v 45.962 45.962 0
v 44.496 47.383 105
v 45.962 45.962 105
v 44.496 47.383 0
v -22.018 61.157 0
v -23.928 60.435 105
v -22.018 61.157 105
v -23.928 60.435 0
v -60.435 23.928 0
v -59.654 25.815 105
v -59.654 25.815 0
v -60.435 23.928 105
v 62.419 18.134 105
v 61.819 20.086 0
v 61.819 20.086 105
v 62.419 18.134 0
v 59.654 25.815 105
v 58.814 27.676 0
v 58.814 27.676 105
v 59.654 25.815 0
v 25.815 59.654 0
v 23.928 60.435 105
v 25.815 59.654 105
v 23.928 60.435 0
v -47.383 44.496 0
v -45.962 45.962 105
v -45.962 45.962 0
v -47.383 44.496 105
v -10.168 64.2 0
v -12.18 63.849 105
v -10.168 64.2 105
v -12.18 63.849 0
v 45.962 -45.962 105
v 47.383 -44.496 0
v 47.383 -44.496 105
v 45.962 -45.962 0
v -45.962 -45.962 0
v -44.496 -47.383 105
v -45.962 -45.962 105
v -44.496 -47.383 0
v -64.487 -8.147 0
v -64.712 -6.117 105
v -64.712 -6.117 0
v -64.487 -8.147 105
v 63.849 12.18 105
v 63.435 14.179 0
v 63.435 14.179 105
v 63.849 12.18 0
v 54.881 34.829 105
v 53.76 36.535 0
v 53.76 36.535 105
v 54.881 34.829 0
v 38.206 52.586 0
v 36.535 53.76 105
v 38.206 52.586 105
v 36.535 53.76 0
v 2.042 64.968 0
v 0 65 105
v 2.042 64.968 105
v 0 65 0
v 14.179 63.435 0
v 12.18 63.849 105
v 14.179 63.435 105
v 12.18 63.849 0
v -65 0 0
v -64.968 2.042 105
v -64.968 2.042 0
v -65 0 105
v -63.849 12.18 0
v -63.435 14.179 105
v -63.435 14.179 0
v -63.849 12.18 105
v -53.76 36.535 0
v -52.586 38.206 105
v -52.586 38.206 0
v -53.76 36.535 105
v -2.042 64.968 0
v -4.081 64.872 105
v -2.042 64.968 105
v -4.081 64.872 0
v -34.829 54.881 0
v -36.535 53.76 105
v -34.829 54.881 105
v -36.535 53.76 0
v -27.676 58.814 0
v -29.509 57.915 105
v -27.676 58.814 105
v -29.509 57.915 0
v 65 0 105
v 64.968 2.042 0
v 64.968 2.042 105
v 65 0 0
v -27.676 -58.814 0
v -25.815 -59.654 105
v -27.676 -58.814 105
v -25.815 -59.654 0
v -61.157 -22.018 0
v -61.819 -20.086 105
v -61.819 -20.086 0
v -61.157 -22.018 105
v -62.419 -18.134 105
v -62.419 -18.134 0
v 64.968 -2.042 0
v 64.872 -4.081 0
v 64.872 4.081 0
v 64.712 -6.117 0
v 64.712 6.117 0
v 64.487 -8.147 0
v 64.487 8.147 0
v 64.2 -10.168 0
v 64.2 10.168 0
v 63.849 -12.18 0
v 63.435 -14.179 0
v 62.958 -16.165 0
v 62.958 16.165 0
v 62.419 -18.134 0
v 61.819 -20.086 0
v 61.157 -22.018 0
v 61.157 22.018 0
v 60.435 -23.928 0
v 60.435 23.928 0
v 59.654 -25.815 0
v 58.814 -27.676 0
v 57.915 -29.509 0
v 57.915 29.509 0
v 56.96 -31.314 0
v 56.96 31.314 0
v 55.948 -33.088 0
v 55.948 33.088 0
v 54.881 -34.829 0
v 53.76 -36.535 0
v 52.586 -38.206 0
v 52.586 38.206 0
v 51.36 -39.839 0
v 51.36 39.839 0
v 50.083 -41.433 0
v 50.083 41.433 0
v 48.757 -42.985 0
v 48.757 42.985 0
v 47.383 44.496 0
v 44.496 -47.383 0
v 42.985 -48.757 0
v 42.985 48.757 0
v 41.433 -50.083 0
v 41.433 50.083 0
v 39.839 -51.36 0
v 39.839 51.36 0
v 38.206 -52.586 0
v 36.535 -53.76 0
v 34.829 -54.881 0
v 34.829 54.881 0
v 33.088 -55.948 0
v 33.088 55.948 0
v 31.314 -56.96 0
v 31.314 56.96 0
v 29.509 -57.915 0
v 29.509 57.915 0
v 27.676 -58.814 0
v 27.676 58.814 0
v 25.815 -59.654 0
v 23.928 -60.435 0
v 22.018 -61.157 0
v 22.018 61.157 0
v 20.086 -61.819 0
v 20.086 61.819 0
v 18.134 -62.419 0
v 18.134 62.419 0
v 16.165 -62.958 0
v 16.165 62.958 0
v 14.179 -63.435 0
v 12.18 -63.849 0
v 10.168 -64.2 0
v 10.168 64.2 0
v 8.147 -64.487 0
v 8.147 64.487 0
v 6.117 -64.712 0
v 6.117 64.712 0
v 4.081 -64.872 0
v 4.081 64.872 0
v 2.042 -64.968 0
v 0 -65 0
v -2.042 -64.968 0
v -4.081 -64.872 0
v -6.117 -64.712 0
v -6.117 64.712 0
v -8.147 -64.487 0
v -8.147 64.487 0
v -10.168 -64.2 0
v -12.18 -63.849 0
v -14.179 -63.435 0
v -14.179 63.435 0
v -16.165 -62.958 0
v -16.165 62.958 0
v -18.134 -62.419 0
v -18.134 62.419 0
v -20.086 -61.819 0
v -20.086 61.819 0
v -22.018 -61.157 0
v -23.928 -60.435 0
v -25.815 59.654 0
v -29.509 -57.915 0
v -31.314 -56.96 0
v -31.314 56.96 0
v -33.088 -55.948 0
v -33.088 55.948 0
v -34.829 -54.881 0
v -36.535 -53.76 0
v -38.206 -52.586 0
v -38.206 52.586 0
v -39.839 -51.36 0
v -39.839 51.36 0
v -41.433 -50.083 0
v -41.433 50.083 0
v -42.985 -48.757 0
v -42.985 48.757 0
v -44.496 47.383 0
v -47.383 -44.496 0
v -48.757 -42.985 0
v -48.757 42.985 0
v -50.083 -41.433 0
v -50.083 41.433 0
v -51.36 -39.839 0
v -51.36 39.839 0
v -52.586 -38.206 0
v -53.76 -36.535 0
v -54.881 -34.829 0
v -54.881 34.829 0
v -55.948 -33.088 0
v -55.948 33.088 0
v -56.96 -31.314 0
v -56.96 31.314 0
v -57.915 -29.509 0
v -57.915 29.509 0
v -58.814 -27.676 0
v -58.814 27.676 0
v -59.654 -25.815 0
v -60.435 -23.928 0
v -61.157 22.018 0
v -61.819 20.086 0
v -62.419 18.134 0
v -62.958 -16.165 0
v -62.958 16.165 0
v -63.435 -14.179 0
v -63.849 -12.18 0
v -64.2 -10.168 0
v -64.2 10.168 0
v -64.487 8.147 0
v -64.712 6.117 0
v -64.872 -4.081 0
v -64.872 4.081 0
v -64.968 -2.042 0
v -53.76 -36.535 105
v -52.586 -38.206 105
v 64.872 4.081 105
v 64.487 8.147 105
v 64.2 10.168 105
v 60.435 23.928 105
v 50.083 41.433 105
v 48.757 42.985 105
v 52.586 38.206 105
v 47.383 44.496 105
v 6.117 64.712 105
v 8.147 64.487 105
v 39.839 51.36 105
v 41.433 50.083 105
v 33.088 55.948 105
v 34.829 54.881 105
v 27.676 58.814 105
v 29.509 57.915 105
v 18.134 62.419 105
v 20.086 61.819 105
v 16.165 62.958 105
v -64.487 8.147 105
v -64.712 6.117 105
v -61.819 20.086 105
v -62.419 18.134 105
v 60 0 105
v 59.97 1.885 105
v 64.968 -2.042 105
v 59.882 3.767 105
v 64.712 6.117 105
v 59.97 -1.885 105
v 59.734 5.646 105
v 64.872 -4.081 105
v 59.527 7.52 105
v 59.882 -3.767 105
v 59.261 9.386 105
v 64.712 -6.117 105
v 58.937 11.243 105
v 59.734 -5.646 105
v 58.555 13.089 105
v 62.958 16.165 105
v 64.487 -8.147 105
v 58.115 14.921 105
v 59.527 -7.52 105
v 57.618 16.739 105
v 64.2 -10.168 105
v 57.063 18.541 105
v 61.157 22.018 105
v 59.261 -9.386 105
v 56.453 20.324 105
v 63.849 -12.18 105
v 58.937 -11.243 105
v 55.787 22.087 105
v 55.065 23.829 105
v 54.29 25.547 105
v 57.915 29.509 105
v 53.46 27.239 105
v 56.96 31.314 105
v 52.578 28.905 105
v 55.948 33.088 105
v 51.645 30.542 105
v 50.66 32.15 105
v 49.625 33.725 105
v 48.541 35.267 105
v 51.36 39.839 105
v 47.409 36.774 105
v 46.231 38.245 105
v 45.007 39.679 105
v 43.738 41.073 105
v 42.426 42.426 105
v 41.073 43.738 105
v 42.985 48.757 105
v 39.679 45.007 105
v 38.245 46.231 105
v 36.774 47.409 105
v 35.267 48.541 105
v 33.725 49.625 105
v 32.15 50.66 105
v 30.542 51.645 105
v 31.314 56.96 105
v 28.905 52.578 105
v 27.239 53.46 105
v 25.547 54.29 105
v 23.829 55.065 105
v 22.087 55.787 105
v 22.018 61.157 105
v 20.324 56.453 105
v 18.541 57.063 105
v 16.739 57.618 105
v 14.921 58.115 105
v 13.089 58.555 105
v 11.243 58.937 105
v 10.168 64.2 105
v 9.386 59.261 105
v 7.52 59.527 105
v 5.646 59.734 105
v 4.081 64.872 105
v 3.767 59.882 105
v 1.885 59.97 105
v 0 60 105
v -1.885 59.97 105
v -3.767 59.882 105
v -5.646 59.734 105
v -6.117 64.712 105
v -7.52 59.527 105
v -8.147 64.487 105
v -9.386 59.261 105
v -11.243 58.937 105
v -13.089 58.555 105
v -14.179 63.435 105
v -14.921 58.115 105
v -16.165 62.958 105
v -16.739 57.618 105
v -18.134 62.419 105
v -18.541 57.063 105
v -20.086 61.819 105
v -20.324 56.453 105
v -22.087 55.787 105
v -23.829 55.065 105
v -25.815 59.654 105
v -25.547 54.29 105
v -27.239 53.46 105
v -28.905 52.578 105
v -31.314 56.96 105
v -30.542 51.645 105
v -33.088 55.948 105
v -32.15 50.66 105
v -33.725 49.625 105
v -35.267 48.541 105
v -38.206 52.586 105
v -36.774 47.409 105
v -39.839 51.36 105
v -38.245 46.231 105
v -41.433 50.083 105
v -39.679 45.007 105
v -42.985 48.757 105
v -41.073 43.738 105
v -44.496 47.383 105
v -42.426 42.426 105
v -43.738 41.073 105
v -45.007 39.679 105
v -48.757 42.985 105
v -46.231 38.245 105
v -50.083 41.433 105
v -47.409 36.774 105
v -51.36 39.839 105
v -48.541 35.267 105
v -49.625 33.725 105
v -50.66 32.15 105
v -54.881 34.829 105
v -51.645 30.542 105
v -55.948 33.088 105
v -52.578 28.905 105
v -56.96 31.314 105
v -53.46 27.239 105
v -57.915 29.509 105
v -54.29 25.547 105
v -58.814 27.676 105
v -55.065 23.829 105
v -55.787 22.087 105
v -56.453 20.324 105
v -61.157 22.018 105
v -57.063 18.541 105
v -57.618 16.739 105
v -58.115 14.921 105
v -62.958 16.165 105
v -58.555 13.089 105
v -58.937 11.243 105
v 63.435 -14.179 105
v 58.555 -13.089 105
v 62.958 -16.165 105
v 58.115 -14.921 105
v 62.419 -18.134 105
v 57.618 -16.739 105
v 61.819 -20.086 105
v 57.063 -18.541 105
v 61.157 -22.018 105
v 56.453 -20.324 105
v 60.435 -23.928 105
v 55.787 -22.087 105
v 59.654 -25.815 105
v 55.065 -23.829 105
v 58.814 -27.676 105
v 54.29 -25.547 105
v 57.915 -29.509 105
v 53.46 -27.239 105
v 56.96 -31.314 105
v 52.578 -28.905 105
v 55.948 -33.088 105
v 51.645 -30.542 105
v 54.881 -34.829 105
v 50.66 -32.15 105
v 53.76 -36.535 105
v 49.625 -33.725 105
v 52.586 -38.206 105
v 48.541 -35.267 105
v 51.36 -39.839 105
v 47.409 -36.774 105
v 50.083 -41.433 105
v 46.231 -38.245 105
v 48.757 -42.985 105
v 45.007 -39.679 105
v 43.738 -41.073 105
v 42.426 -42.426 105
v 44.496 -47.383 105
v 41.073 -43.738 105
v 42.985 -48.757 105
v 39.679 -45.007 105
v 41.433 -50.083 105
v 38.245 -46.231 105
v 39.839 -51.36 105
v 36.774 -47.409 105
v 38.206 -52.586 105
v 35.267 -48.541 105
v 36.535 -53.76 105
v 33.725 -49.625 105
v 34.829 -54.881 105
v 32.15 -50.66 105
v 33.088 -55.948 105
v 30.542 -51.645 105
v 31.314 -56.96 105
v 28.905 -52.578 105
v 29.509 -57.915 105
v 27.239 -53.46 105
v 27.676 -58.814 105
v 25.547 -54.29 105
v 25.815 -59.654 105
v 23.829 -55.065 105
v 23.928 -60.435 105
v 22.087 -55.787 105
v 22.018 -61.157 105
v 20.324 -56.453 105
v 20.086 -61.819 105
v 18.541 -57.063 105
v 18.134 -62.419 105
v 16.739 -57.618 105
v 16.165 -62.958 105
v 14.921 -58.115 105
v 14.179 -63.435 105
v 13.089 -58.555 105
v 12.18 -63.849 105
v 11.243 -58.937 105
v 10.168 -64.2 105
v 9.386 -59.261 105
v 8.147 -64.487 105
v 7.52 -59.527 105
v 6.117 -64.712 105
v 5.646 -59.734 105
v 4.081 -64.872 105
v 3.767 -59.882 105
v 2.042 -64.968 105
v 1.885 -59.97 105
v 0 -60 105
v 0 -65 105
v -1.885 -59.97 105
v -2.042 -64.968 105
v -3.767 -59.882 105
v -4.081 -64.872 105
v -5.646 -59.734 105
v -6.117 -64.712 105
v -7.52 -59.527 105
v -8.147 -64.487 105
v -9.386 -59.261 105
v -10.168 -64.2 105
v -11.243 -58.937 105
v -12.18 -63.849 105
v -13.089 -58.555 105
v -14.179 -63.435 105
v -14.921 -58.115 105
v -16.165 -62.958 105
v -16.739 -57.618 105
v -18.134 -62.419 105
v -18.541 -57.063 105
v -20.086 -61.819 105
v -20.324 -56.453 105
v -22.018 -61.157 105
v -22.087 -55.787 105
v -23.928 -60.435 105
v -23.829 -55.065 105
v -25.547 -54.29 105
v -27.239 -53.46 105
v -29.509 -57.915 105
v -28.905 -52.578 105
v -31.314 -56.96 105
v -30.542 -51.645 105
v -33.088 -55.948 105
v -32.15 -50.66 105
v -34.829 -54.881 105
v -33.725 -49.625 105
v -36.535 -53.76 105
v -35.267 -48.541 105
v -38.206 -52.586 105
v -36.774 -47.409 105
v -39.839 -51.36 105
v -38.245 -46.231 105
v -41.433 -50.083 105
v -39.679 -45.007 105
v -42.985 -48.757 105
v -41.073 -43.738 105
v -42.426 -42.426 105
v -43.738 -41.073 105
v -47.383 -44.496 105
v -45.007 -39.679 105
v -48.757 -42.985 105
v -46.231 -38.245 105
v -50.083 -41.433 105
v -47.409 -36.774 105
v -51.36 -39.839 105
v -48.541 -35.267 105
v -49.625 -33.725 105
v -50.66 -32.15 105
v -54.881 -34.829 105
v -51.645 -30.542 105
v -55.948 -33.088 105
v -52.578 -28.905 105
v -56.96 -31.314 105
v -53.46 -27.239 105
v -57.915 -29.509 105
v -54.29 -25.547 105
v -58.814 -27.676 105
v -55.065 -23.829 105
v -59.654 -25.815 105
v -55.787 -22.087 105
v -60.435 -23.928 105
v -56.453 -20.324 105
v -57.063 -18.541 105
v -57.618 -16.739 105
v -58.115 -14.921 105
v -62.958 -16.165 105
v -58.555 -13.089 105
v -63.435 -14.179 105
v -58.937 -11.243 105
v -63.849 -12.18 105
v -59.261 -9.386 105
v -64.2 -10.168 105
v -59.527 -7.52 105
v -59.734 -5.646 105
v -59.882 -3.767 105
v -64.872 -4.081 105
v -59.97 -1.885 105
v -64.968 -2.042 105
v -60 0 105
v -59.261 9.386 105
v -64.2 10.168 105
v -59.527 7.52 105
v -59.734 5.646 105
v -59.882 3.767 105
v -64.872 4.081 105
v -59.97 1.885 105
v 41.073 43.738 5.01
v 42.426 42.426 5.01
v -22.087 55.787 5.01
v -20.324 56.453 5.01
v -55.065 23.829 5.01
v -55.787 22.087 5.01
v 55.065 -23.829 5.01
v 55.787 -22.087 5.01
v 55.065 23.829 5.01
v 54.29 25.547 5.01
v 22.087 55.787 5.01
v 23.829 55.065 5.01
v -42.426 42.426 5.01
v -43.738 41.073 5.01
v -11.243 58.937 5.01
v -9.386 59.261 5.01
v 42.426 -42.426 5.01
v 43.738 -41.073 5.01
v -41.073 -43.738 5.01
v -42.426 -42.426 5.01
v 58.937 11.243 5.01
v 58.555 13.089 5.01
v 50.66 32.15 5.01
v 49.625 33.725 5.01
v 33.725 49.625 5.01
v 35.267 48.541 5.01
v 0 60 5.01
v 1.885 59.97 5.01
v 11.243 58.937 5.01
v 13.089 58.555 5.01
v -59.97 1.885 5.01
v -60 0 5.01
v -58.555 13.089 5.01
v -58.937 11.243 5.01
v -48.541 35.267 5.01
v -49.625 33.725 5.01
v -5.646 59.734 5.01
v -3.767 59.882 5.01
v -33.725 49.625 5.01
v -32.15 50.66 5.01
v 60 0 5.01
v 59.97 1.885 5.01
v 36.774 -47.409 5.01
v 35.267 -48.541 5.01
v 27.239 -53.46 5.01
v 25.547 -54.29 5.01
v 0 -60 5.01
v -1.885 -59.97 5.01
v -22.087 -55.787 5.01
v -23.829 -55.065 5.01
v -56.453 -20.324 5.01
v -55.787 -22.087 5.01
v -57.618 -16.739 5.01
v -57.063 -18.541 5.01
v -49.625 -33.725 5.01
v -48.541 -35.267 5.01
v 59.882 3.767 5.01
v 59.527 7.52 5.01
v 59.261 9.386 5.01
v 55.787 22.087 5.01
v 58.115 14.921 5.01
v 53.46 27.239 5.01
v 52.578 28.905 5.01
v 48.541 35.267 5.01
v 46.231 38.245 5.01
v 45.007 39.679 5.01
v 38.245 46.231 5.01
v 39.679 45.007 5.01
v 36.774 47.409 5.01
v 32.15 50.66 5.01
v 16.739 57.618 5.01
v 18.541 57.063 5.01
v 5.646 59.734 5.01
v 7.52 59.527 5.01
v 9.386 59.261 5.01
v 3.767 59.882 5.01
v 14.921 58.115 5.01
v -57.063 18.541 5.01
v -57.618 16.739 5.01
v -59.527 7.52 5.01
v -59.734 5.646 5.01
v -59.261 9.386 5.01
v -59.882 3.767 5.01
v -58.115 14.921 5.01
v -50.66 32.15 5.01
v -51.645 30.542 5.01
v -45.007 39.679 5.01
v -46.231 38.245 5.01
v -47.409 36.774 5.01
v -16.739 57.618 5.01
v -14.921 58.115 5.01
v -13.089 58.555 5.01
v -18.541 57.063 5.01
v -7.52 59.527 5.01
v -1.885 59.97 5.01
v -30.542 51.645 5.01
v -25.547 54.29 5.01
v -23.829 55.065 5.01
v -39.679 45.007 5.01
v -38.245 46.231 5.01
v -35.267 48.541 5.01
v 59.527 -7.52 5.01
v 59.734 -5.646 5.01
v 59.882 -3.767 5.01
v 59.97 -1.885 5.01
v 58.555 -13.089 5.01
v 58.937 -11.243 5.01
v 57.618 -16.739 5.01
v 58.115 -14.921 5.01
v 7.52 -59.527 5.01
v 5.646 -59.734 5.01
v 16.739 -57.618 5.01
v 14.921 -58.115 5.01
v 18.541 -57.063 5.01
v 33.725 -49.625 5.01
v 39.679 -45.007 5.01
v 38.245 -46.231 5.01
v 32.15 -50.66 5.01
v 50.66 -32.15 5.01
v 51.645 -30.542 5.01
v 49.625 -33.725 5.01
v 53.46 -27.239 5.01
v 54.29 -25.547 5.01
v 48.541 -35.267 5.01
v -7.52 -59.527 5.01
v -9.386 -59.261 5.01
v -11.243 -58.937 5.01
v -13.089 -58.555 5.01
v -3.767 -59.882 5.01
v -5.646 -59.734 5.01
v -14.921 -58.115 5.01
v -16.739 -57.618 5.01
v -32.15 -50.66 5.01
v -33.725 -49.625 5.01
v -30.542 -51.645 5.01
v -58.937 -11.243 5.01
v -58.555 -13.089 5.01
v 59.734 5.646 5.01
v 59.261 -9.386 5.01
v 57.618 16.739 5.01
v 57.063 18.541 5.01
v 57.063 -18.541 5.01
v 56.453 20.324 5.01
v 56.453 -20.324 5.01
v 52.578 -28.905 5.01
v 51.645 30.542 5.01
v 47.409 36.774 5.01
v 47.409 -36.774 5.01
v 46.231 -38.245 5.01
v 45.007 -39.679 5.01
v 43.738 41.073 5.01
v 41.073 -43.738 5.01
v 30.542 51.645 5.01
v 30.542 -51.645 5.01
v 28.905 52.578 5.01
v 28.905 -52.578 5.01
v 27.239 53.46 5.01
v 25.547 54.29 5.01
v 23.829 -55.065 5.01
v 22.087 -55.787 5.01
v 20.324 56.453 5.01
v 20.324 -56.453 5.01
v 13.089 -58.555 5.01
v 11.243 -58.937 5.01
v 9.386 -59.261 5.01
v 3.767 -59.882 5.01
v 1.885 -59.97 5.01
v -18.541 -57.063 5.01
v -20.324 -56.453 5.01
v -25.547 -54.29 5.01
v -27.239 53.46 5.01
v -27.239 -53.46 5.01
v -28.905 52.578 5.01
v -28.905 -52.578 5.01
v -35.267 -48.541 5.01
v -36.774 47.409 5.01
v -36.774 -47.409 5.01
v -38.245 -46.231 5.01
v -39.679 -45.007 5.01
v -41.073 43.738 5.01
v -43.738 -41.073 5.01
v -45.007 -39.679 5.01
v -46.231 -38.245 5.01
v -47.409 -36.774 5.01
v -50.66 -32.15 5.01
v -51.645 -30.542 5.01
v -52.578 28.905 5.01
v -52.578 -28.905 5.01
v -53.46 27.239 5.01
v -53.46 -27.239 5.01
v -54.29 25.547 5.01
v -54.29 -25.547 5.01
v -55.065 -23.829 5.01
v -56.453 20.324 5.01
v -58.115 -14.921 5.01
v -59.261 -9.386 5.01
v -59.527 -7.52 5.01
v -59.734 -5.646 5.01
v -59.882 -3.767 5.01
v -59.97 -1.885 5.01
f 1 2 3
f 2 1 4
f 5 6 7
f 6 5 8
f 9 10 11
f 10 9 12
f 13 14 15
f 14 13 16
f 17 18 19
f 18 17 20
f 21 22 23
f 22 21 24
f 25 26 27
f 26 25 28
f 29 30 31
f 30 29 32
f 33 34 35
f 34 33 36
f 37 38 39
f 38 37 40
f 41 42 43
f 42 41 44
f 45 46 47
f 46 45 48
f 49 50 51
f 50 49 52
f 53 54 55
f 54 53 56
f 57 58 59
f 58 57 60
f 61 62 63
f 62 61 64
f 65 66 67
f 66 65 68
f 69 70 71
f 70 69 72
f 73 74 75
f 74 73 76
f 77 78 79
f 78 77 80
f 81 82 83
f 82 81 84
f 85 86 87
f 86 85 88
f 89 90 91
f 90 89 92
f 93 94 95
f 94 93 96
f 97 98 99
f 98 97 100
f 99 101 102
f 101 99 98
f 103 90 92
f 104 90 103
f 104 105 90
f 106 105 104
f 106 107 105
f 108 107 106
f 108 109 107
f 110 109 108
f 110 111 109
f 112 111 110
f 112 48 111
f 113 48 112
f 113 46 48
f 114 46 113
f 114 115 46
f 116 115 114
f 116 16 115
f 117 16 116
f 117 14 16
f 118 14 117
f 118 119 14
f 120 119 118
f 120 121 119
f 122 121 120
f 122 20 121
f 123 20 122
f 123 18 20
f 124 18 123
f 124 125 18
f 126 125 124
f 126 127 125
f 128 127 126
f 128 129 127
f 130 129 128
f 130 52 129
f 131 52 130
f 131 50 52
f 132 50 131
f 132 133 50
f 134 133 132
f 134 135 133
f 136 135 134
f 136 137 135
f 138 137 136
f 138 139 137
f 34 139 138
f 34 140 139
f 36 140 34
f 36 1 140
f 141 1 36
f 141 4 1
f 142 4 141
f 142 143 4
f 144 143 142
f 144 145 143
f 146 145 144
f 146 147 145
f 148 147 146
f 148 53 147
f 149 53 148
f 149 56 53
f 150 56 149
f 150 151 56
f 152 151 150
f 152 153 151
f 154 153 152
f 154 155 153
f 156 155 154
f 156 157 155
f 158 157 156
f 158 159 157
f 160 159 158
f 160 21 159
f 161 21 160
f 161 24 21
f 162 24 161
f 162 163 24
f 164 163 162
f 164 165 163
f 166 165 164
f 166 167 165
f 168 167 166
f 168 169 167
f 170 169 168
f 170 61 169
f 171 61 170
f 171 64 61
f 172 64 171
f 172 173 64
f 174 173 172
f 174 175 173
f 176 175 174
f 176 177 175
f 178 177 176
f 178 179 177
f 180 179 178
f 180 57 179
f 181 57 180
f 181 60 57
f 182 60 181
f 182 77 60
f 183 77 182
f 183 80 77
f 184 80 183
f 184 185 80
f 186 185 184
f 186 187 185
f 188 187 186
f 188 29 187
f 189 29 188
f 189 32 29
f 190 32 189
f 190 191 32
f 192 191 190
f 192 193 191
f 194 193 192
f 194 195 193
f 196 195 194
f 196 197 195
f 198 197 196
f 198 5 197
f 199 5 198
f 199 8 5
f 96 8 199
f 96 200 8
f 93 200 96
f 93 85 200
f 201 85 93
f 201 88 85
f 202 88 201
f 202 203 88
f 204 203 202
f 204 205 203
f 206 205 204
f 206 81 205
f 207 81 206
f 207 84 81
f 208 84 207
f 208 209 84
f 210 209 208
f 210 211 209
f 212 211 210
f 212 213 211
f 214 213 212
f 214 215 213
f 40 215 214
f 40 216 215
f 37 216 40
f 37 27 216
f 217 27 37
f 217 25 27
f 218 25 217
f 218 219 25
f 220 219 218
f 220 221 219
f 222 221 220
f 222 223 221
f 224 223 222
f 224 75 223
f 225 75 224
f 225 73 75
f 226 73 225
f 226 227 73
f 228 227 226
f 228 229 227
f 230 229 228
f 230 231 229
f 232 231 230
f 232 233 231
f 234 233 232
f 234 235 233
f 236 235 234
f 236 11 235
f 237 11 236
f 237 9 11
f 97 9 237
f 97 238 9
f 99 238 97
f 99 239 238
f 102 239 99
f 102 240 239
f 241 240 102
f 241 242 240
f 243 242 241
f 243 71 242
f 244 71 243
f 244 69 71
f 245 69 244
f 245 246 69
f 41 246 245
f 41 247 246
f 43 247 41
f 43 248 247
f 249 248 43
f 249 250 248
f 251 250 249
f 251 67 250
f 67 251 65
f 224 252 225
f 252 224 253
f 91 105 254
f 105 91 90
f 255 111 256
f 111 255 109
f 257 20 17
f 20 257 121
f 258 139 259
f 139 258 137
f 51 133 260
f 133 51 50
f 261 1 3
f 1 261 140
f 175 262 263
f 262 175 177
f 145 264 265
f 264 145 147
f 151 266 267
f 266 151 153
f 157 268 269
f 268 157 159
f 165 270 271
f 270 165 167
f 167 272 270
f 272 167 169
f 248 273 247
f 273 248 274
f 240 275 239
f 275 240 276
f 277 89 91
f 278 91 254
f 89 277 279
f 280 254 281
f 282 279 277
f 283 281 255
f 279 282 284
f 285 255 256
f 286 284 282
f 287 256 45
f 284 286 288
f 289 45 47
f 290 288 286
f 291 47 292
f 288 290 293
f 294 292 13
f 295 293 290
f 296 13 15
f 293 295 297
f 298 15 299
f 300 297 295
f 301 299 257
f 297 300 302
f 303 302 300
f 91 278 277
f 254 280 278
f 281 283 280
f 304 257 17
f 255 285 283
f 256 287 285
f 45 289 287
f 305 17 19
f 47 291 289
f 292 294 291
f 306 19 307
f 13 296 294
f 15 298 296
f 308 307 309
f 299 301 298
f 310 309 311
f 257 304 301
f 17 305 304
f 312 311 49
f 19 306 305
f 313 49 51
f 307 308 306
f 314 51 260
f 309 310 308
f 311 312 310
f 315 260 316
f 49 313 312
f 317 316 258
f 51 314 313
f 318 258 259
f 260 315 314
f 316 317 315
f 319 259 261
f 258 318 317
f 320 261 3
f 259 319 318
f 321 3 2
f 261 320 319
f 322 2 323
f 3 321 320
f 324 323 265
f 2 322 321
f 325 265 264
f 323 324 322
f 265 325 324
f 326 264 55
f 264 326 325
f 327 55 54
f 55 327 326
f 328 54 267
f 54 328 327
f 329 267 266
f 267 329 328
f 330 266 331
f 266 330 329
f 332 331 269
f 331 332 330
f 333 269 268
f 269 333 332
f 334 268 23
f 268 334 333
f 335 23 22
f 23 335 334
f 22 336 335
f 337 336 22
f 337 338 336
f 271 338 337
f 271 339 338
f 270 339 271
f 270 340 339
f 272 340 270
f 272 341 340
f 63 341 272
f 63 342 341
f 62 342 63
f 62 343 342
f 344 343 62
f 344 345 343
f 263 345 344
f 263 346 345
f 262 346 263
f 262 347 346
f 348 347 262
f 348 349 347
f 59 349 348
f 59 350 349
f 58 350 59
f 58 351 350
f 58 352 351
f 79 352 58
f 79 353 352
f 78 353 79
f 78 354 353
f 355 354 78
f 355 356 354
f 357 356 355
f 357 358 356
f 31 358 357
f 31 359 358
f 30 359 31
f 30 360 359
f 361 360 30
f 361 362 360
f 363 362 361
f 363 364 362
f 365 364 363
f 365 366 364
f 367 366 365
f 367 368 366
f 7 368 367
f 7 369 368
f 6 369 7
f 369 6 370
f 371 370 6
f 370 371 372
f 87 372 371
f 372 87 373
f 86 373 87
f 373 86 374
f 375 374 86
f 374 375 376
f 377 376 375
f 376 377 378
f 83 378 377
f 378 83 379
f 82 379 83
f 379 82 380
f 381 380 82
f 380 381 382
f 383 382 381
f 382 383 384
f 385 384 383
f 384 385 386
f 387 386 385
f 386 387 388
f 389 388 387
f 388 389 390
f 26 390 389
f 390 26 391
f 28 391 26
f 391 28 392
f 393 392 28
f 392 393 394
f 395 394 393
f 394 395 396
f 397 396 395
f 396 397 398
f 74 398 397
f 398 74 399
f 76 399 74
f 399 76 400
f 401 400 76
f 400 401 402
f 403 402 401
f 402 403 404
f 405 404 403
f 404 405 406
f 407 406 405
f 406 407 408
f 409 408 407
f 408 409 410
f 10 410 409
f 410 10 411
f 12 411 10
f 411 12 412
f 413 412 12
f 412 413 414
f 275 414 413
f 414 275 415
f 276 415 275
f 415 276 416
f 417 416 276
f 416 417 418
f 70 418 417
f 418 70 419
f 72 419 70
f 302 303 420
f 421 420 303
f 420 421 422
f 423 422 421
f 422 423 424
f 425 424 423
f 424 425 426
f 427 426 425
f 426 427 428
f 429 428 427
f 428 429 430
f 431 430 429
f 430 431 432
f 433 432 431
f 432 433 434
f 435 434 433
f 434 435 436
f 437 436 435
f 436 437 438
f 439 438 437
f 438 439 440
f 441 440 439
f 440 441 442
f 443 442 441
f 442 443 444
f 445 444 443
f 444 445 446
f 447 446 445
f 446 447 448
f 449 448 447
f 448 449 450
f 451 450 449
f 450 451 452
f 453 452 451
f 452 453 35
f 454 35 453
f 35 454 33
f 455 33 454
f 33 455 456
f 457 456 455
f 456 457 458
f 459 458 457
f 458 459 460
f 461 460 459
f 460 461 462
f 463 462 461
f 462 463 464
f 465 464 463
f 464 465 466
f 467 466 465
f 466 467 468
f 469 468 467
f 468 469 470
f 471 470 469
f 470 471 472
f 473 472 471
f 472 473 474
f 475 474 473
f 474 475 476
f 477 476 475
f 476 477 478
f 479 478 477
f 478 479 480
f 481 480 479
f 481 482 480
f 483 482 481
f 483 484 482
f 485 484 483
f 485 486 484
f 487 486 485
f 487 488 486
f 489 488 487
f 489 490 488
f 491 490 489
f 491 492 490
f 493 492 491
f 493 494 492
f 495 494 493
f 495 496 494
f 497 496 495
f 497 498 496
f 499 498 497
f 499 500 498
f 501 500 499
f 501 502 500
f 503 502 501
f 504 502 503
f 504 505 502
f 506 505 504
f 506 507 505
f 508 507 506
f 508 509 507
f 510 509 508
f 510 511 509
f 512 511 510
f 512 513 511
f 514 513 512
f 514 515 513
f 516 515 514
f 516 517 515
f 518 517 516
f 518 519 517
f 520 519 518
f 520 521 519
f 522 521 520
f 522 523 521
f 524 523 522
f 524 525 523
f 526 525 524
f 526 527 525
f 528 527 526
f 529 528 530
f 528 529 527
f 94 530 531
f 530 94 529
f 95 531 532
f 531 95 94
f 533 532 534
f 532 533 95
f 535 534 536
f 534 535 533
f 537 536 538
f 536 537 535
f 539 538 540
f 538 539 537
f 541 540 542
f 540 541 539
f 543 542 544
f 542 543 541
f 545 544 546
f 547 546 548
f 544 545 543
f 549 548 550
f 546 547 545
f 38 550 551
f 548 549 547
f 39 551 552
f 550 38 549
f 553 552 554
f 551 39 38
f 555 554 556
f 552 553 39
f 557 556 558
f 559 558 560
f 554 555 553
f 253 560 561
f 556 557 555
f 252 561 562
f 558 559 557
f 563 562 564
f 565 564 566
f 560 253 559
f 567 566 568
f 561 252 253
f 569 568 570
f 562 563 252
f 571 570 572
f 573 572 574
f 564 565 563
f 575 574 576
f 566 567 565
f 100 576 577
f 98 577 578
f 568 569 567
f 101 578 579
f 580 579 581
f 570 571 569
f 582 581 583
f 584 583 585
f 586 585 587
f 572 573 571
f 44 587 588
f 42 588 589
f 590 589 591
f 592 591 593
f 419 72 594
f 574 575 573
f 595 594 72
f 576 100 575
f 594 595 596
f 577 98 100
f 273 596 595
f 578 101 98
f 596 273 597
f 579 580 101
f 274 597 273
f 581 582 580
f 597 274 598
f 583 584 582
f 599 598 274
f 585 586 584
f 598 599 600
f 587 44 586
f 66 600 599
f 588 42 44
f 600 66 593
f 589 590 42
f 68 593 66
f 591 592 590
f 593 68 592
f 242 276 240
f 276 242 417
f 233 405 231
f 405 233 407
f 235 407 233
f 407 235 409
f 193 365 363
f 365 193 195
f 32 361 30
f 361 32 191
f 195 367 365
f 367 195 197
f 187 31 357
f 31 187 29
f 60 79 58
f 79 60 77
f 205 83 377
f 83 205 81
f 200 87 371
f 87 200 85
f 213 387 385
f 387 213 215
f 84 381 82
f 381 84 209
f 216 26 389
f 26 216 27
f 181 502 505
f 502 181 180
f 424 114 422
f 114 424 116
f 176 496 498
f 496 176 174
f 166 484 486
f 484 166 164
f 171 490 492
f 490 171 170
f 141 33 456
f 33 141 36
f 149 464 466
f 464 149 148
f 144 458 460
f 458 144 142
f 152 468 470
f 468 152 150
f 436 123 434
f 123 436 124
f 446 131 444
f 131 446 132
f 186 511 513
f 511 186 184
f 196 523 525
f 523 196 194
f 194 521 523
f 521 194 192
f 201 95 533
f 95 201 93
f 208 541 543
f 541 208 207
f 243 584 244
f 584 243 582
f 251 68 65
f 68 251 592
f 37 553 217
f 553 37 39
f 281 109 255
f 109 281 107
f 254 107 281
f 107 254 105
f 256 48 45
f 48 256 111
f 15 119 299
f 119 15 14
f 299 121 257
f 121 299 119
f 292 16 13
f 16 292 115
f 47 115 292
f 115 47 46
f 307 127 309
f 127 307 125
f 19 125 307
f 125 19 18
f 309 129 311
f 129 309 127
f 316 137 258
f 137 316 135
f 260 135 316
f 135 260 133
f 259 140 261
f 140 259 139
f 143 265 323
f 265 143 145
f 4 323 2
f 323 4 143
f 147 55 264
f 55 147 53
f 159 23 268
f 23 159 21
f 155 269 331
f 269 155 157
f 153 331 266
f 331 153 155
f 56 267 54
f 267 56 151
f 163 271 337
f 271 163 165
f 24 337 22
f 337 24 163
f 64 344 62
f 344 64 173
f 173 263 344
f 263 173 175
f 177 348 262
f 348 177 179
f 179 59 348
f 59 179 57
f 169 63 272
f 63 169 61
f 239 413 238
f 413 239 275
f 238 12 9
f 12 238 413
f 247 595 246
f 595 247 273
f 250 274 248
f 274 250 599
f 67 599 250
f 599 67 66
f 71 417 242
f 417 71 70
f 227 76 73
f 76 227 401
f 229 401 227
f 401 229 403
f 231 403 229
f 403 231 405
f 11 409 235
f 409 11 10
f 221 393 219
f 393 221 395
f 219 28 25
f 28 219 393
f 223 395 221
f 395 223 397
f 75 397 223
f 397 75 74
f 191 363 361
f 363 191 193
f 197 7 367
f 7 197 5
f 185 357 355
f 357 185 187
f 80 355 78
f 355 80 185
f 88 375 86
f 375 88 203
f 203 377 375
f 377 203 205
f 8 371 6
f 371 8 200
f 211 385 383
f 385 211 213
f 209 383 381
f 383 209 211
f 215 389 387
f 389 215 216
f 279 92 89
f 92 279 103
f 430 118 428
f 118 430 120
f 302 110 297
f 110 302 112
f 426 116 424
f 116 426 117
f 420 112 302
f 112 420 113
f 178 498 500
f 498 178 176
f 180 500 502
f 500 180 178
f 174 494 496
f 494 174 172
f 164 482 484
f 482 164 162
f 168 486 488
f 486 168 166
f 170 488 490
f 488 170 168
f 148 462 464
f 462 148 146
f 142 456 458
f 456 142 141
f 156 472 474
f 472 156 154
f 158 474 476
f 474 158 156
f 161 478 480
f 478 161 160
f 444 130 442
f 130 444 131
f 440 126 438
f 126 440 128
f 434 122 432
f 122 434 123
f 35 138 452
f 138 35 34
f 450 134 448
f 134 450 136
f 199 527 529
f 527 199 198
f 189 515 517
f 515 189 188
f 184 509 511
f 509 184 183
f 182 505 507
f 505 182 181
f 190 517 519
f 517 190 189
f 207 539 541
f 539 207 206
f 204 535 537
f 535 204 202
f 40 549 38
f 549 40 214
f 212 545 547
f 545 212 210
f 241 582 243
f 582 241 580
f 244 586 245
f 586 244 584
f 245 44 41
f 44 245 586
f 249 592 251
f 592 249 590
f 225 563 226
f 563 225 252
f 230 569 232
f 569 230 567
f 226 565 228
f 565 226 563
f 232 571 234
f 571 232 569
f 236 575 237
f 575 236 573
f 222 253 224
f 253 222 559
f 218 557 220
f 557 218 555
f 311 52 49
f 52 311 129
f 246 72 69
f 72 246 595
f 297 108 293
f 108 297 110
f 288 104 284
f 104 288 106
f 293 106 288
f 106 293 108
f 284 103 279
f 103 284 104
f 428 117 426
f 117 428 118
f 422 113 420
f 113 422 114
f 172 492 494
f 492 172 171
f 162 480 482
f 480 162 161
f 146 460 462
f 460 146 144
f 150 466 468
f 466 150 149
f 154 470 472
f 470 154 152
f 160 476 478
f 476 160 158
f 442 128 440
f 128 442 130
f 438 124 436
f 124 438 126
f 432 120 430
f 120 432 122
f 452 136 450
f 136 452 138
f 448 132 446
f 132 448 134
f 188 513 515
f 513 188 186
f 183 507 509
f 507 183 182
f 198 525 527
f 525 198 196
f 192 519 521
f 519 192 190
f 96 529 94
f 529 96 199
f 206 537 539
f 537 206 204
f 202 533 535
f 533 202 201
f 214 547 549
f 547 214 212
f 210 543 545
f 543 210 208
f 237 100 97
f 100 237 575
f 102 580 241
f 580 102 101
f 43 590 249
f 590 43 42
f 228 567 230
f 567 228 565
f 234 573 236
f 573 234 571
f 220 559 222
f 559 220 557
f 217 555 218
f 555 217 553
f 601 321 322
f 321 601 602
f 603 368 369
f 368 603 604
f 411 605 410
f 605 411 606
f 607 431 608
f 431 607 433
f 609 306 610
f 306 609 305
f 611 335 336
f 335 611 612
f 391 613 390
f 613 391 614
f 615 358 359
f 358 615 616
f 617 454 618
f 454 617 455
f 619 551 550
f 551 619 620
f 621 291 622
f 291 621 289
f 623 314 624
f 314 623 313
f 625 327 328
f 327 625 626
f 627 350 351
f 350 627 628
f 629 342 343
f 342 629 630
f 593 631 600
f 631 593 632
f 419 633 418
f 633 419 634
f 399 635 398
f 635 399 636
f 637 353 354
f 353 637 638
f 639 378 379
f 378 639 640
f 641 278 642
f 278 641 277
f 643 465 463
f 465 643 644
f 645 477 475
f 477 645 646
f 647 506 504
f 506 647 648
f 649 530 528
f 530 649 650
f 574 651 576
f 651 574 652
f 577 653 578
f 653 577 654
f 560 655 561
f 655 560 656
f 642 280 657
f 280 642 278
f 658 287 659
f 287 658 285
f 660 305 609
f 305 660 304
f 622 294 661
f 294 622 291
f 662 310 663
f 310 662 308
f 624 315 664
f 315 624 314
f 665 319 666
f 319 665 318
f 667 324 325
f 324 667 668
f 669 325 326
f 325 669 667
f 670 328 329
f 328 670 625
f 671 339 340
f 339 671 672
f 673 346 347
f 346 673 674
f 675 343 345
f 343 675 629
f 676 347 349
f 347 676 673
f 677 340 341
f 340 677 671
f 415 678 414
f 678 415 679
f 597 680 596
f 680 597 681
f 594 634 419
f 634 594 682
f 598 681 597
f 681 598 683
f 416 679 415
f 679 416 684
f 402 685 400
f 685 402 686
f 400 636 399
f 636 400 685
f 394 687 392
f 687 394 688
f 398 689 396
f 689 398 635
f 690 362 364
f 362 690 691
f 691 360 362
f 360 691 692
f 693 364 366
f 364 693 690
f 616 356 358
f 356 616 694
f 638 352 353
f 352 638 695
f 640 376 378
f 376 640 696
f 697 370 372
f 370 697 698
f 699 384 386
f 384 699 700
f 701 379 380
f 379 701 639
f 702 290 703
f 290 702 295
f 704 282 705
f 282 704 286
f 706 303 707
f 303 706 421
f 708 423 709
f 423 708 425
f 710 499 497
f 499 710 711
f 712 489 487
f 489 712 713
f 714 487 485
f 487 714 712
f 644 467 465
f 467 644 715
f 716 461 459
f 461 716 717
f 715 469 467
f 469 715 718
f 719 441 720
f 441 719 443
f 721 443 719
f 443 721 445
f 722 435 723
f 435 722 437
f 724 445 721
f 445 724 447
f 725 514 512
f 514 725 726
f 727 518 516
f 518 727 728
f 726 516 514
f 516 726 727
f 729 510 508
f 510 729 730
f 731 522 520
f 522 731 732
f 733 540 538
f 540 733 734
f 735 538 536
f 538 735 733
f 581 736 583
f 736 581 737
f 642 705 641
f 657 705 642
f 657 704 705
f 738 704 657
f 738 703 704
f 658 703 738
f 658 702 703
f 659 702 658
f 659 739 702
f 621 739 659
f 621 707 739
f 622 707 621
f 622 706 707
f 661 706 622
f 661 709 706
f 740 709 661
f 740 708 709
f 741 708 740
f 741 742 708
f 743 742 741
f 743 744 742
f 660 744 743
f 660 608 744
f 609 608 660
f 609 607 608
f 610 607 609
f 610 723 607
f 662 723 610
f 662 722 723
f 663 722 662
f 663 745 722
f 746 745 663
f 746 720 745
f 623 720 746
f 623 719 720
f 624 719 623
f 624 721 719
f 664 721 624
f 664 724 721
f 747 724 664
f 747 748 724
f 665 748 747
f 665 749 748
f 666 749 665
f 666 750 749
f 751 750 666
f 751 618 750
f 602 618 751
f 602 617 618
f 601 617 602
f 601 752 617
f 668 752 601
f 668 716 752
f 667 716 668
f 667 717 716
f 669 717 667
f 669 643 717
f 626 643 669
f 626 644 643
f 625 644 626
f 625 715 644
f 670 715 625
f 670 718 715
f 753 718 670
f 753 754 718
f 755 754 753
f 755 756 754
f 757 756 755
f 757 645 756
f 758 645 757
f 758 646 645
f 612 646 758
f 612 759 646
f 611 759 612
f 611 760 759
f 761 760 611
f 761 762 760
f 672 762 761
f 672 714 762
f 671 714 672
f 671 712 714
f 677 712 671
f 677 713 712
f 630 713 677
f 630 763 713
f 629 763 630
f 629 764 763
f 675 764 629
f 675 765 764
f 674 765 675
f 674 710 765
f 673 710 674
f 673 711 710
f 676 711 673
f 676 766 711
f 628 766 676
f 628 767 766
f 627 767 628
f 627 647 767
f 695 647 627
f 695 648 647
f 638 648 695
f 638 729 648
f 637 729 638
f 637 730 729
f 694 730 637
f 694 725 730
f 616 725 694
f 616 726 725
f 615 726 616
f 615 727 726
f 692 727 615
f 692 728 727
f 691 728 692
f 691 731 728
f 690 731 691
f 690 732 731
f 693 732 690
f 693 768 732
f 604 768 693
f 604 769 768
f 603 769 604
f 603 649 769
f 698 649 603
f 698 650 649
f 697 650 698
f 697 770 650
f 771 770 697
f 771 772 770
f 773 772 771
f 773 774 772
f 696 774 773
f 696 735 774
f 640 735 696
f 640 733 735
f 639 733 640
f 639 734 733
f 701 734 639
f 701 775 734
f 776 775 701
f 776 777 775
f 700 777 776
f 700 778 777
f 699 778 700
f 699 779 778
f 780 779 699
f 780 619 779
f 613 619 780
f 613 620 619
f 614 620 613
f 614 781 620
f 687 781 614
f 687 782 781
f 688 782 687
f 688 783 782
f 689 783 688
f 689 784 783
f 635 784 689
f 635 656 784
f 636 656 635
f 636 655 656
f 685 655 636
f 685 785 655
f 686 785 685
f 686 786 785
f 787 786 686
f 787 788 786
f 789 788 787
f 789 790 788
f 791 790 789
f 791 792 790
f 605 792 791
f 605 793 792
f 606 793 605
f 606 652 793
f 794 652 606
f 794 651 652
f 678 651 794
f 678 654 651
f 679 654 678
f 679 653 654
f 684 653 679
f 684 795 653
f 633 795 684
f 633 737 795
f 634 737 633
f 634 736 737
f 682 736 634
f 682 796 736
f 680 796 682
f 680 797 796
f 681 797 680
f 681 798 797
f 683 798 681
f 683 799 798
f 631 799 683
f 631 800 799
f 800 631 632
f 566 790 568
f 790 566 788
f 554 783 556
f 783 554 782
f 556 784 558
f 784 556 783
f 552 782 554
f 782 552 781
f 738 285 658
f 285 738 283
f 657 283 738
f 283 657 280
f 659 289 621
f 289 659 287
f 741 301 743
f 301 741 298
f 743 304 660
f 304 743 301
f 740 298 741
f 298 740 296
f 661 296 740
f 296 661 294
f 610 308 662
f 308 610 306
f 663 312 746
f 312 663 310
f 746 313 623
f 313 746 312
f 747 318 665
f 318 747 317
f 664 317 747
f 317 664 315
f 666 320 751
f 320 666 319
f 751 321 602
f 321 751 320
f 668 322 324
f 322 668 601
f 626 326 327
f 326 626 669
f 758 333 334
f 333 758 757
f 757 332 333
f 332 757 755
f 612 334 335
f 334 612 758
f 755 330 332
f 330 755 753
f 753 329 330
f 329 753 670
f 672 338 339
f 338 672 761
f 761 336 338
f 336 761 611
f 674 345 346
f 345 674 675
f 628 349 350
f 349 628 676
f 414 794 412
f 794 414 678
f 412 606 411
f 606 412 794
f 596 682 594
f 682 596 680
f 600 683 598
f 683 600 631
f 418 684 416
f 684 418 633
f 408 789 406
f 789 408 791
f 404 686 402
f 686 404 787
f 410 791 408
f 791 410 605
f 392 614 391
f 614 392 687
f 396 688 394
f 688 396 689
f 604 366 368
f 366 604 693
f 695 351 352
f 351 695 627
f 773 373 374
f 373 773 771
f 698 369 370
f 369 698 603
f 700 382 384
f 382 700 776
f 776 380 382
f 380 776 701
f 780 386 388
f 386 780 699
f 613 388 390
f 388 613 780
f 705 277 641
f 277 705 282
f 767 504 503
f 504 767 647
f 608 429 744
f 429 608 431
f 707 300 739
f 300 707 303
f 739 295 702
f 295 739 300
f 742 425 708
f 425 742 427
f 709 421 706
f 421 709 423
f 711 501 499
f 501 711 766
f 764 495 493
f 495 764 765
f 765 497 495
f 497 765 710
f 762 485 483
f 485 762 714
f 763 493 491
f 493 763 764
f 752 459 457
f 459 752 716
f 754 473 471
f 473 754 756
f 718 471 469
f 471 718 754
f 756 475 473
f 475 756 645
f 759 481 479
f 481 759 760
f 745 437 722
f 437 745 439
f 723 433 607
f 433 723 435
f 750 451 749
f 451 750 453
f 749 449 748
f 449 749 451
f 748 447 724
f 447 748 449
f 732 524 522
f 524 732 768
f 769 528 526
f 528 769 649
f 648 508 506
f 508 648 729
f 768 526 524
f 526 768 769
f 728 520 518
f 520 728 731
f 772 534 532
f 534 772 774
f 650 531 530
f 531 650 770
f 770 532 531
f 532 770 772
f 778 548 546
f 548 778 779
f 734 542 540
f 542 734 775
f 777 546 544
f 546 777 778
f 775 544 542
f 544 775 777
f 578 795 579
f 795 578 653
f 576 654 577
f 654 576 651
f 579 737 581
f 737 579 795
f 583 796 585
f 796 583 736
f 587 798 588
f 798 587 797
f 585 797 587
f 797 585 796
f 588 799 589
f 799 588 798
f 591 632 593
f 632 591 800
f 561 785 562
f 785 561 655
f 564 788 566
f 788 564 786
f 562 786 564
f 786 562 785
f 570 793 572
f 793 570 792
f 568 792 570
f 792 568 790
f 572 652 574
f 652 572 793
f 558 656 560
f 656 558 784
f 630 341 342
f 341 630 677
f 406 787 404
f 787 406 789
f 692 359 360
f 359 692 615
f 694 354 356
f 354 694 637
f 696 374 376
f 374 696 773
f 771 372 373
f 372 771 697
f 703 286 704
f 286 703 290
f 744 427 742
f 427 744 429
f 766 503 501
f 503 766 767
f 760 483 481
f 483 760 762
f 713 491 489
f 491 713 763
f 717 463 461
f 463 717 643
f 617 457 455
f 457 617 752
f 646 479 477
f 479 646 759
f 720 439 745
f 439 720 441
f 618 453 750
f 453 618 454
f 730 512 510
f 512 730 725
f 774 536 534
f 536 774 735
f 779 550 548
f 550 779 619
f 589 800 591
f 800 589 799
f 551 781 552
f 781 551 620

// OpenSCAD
$fn = 200;

id = 120;
od = 130;
ih = 100;
oh = 105;

difference() {
    cylinder(h = oh, d = od);
    translate([0, 0, oh - ih + 0.01])
    cylinder(h = id, d = id);
}
